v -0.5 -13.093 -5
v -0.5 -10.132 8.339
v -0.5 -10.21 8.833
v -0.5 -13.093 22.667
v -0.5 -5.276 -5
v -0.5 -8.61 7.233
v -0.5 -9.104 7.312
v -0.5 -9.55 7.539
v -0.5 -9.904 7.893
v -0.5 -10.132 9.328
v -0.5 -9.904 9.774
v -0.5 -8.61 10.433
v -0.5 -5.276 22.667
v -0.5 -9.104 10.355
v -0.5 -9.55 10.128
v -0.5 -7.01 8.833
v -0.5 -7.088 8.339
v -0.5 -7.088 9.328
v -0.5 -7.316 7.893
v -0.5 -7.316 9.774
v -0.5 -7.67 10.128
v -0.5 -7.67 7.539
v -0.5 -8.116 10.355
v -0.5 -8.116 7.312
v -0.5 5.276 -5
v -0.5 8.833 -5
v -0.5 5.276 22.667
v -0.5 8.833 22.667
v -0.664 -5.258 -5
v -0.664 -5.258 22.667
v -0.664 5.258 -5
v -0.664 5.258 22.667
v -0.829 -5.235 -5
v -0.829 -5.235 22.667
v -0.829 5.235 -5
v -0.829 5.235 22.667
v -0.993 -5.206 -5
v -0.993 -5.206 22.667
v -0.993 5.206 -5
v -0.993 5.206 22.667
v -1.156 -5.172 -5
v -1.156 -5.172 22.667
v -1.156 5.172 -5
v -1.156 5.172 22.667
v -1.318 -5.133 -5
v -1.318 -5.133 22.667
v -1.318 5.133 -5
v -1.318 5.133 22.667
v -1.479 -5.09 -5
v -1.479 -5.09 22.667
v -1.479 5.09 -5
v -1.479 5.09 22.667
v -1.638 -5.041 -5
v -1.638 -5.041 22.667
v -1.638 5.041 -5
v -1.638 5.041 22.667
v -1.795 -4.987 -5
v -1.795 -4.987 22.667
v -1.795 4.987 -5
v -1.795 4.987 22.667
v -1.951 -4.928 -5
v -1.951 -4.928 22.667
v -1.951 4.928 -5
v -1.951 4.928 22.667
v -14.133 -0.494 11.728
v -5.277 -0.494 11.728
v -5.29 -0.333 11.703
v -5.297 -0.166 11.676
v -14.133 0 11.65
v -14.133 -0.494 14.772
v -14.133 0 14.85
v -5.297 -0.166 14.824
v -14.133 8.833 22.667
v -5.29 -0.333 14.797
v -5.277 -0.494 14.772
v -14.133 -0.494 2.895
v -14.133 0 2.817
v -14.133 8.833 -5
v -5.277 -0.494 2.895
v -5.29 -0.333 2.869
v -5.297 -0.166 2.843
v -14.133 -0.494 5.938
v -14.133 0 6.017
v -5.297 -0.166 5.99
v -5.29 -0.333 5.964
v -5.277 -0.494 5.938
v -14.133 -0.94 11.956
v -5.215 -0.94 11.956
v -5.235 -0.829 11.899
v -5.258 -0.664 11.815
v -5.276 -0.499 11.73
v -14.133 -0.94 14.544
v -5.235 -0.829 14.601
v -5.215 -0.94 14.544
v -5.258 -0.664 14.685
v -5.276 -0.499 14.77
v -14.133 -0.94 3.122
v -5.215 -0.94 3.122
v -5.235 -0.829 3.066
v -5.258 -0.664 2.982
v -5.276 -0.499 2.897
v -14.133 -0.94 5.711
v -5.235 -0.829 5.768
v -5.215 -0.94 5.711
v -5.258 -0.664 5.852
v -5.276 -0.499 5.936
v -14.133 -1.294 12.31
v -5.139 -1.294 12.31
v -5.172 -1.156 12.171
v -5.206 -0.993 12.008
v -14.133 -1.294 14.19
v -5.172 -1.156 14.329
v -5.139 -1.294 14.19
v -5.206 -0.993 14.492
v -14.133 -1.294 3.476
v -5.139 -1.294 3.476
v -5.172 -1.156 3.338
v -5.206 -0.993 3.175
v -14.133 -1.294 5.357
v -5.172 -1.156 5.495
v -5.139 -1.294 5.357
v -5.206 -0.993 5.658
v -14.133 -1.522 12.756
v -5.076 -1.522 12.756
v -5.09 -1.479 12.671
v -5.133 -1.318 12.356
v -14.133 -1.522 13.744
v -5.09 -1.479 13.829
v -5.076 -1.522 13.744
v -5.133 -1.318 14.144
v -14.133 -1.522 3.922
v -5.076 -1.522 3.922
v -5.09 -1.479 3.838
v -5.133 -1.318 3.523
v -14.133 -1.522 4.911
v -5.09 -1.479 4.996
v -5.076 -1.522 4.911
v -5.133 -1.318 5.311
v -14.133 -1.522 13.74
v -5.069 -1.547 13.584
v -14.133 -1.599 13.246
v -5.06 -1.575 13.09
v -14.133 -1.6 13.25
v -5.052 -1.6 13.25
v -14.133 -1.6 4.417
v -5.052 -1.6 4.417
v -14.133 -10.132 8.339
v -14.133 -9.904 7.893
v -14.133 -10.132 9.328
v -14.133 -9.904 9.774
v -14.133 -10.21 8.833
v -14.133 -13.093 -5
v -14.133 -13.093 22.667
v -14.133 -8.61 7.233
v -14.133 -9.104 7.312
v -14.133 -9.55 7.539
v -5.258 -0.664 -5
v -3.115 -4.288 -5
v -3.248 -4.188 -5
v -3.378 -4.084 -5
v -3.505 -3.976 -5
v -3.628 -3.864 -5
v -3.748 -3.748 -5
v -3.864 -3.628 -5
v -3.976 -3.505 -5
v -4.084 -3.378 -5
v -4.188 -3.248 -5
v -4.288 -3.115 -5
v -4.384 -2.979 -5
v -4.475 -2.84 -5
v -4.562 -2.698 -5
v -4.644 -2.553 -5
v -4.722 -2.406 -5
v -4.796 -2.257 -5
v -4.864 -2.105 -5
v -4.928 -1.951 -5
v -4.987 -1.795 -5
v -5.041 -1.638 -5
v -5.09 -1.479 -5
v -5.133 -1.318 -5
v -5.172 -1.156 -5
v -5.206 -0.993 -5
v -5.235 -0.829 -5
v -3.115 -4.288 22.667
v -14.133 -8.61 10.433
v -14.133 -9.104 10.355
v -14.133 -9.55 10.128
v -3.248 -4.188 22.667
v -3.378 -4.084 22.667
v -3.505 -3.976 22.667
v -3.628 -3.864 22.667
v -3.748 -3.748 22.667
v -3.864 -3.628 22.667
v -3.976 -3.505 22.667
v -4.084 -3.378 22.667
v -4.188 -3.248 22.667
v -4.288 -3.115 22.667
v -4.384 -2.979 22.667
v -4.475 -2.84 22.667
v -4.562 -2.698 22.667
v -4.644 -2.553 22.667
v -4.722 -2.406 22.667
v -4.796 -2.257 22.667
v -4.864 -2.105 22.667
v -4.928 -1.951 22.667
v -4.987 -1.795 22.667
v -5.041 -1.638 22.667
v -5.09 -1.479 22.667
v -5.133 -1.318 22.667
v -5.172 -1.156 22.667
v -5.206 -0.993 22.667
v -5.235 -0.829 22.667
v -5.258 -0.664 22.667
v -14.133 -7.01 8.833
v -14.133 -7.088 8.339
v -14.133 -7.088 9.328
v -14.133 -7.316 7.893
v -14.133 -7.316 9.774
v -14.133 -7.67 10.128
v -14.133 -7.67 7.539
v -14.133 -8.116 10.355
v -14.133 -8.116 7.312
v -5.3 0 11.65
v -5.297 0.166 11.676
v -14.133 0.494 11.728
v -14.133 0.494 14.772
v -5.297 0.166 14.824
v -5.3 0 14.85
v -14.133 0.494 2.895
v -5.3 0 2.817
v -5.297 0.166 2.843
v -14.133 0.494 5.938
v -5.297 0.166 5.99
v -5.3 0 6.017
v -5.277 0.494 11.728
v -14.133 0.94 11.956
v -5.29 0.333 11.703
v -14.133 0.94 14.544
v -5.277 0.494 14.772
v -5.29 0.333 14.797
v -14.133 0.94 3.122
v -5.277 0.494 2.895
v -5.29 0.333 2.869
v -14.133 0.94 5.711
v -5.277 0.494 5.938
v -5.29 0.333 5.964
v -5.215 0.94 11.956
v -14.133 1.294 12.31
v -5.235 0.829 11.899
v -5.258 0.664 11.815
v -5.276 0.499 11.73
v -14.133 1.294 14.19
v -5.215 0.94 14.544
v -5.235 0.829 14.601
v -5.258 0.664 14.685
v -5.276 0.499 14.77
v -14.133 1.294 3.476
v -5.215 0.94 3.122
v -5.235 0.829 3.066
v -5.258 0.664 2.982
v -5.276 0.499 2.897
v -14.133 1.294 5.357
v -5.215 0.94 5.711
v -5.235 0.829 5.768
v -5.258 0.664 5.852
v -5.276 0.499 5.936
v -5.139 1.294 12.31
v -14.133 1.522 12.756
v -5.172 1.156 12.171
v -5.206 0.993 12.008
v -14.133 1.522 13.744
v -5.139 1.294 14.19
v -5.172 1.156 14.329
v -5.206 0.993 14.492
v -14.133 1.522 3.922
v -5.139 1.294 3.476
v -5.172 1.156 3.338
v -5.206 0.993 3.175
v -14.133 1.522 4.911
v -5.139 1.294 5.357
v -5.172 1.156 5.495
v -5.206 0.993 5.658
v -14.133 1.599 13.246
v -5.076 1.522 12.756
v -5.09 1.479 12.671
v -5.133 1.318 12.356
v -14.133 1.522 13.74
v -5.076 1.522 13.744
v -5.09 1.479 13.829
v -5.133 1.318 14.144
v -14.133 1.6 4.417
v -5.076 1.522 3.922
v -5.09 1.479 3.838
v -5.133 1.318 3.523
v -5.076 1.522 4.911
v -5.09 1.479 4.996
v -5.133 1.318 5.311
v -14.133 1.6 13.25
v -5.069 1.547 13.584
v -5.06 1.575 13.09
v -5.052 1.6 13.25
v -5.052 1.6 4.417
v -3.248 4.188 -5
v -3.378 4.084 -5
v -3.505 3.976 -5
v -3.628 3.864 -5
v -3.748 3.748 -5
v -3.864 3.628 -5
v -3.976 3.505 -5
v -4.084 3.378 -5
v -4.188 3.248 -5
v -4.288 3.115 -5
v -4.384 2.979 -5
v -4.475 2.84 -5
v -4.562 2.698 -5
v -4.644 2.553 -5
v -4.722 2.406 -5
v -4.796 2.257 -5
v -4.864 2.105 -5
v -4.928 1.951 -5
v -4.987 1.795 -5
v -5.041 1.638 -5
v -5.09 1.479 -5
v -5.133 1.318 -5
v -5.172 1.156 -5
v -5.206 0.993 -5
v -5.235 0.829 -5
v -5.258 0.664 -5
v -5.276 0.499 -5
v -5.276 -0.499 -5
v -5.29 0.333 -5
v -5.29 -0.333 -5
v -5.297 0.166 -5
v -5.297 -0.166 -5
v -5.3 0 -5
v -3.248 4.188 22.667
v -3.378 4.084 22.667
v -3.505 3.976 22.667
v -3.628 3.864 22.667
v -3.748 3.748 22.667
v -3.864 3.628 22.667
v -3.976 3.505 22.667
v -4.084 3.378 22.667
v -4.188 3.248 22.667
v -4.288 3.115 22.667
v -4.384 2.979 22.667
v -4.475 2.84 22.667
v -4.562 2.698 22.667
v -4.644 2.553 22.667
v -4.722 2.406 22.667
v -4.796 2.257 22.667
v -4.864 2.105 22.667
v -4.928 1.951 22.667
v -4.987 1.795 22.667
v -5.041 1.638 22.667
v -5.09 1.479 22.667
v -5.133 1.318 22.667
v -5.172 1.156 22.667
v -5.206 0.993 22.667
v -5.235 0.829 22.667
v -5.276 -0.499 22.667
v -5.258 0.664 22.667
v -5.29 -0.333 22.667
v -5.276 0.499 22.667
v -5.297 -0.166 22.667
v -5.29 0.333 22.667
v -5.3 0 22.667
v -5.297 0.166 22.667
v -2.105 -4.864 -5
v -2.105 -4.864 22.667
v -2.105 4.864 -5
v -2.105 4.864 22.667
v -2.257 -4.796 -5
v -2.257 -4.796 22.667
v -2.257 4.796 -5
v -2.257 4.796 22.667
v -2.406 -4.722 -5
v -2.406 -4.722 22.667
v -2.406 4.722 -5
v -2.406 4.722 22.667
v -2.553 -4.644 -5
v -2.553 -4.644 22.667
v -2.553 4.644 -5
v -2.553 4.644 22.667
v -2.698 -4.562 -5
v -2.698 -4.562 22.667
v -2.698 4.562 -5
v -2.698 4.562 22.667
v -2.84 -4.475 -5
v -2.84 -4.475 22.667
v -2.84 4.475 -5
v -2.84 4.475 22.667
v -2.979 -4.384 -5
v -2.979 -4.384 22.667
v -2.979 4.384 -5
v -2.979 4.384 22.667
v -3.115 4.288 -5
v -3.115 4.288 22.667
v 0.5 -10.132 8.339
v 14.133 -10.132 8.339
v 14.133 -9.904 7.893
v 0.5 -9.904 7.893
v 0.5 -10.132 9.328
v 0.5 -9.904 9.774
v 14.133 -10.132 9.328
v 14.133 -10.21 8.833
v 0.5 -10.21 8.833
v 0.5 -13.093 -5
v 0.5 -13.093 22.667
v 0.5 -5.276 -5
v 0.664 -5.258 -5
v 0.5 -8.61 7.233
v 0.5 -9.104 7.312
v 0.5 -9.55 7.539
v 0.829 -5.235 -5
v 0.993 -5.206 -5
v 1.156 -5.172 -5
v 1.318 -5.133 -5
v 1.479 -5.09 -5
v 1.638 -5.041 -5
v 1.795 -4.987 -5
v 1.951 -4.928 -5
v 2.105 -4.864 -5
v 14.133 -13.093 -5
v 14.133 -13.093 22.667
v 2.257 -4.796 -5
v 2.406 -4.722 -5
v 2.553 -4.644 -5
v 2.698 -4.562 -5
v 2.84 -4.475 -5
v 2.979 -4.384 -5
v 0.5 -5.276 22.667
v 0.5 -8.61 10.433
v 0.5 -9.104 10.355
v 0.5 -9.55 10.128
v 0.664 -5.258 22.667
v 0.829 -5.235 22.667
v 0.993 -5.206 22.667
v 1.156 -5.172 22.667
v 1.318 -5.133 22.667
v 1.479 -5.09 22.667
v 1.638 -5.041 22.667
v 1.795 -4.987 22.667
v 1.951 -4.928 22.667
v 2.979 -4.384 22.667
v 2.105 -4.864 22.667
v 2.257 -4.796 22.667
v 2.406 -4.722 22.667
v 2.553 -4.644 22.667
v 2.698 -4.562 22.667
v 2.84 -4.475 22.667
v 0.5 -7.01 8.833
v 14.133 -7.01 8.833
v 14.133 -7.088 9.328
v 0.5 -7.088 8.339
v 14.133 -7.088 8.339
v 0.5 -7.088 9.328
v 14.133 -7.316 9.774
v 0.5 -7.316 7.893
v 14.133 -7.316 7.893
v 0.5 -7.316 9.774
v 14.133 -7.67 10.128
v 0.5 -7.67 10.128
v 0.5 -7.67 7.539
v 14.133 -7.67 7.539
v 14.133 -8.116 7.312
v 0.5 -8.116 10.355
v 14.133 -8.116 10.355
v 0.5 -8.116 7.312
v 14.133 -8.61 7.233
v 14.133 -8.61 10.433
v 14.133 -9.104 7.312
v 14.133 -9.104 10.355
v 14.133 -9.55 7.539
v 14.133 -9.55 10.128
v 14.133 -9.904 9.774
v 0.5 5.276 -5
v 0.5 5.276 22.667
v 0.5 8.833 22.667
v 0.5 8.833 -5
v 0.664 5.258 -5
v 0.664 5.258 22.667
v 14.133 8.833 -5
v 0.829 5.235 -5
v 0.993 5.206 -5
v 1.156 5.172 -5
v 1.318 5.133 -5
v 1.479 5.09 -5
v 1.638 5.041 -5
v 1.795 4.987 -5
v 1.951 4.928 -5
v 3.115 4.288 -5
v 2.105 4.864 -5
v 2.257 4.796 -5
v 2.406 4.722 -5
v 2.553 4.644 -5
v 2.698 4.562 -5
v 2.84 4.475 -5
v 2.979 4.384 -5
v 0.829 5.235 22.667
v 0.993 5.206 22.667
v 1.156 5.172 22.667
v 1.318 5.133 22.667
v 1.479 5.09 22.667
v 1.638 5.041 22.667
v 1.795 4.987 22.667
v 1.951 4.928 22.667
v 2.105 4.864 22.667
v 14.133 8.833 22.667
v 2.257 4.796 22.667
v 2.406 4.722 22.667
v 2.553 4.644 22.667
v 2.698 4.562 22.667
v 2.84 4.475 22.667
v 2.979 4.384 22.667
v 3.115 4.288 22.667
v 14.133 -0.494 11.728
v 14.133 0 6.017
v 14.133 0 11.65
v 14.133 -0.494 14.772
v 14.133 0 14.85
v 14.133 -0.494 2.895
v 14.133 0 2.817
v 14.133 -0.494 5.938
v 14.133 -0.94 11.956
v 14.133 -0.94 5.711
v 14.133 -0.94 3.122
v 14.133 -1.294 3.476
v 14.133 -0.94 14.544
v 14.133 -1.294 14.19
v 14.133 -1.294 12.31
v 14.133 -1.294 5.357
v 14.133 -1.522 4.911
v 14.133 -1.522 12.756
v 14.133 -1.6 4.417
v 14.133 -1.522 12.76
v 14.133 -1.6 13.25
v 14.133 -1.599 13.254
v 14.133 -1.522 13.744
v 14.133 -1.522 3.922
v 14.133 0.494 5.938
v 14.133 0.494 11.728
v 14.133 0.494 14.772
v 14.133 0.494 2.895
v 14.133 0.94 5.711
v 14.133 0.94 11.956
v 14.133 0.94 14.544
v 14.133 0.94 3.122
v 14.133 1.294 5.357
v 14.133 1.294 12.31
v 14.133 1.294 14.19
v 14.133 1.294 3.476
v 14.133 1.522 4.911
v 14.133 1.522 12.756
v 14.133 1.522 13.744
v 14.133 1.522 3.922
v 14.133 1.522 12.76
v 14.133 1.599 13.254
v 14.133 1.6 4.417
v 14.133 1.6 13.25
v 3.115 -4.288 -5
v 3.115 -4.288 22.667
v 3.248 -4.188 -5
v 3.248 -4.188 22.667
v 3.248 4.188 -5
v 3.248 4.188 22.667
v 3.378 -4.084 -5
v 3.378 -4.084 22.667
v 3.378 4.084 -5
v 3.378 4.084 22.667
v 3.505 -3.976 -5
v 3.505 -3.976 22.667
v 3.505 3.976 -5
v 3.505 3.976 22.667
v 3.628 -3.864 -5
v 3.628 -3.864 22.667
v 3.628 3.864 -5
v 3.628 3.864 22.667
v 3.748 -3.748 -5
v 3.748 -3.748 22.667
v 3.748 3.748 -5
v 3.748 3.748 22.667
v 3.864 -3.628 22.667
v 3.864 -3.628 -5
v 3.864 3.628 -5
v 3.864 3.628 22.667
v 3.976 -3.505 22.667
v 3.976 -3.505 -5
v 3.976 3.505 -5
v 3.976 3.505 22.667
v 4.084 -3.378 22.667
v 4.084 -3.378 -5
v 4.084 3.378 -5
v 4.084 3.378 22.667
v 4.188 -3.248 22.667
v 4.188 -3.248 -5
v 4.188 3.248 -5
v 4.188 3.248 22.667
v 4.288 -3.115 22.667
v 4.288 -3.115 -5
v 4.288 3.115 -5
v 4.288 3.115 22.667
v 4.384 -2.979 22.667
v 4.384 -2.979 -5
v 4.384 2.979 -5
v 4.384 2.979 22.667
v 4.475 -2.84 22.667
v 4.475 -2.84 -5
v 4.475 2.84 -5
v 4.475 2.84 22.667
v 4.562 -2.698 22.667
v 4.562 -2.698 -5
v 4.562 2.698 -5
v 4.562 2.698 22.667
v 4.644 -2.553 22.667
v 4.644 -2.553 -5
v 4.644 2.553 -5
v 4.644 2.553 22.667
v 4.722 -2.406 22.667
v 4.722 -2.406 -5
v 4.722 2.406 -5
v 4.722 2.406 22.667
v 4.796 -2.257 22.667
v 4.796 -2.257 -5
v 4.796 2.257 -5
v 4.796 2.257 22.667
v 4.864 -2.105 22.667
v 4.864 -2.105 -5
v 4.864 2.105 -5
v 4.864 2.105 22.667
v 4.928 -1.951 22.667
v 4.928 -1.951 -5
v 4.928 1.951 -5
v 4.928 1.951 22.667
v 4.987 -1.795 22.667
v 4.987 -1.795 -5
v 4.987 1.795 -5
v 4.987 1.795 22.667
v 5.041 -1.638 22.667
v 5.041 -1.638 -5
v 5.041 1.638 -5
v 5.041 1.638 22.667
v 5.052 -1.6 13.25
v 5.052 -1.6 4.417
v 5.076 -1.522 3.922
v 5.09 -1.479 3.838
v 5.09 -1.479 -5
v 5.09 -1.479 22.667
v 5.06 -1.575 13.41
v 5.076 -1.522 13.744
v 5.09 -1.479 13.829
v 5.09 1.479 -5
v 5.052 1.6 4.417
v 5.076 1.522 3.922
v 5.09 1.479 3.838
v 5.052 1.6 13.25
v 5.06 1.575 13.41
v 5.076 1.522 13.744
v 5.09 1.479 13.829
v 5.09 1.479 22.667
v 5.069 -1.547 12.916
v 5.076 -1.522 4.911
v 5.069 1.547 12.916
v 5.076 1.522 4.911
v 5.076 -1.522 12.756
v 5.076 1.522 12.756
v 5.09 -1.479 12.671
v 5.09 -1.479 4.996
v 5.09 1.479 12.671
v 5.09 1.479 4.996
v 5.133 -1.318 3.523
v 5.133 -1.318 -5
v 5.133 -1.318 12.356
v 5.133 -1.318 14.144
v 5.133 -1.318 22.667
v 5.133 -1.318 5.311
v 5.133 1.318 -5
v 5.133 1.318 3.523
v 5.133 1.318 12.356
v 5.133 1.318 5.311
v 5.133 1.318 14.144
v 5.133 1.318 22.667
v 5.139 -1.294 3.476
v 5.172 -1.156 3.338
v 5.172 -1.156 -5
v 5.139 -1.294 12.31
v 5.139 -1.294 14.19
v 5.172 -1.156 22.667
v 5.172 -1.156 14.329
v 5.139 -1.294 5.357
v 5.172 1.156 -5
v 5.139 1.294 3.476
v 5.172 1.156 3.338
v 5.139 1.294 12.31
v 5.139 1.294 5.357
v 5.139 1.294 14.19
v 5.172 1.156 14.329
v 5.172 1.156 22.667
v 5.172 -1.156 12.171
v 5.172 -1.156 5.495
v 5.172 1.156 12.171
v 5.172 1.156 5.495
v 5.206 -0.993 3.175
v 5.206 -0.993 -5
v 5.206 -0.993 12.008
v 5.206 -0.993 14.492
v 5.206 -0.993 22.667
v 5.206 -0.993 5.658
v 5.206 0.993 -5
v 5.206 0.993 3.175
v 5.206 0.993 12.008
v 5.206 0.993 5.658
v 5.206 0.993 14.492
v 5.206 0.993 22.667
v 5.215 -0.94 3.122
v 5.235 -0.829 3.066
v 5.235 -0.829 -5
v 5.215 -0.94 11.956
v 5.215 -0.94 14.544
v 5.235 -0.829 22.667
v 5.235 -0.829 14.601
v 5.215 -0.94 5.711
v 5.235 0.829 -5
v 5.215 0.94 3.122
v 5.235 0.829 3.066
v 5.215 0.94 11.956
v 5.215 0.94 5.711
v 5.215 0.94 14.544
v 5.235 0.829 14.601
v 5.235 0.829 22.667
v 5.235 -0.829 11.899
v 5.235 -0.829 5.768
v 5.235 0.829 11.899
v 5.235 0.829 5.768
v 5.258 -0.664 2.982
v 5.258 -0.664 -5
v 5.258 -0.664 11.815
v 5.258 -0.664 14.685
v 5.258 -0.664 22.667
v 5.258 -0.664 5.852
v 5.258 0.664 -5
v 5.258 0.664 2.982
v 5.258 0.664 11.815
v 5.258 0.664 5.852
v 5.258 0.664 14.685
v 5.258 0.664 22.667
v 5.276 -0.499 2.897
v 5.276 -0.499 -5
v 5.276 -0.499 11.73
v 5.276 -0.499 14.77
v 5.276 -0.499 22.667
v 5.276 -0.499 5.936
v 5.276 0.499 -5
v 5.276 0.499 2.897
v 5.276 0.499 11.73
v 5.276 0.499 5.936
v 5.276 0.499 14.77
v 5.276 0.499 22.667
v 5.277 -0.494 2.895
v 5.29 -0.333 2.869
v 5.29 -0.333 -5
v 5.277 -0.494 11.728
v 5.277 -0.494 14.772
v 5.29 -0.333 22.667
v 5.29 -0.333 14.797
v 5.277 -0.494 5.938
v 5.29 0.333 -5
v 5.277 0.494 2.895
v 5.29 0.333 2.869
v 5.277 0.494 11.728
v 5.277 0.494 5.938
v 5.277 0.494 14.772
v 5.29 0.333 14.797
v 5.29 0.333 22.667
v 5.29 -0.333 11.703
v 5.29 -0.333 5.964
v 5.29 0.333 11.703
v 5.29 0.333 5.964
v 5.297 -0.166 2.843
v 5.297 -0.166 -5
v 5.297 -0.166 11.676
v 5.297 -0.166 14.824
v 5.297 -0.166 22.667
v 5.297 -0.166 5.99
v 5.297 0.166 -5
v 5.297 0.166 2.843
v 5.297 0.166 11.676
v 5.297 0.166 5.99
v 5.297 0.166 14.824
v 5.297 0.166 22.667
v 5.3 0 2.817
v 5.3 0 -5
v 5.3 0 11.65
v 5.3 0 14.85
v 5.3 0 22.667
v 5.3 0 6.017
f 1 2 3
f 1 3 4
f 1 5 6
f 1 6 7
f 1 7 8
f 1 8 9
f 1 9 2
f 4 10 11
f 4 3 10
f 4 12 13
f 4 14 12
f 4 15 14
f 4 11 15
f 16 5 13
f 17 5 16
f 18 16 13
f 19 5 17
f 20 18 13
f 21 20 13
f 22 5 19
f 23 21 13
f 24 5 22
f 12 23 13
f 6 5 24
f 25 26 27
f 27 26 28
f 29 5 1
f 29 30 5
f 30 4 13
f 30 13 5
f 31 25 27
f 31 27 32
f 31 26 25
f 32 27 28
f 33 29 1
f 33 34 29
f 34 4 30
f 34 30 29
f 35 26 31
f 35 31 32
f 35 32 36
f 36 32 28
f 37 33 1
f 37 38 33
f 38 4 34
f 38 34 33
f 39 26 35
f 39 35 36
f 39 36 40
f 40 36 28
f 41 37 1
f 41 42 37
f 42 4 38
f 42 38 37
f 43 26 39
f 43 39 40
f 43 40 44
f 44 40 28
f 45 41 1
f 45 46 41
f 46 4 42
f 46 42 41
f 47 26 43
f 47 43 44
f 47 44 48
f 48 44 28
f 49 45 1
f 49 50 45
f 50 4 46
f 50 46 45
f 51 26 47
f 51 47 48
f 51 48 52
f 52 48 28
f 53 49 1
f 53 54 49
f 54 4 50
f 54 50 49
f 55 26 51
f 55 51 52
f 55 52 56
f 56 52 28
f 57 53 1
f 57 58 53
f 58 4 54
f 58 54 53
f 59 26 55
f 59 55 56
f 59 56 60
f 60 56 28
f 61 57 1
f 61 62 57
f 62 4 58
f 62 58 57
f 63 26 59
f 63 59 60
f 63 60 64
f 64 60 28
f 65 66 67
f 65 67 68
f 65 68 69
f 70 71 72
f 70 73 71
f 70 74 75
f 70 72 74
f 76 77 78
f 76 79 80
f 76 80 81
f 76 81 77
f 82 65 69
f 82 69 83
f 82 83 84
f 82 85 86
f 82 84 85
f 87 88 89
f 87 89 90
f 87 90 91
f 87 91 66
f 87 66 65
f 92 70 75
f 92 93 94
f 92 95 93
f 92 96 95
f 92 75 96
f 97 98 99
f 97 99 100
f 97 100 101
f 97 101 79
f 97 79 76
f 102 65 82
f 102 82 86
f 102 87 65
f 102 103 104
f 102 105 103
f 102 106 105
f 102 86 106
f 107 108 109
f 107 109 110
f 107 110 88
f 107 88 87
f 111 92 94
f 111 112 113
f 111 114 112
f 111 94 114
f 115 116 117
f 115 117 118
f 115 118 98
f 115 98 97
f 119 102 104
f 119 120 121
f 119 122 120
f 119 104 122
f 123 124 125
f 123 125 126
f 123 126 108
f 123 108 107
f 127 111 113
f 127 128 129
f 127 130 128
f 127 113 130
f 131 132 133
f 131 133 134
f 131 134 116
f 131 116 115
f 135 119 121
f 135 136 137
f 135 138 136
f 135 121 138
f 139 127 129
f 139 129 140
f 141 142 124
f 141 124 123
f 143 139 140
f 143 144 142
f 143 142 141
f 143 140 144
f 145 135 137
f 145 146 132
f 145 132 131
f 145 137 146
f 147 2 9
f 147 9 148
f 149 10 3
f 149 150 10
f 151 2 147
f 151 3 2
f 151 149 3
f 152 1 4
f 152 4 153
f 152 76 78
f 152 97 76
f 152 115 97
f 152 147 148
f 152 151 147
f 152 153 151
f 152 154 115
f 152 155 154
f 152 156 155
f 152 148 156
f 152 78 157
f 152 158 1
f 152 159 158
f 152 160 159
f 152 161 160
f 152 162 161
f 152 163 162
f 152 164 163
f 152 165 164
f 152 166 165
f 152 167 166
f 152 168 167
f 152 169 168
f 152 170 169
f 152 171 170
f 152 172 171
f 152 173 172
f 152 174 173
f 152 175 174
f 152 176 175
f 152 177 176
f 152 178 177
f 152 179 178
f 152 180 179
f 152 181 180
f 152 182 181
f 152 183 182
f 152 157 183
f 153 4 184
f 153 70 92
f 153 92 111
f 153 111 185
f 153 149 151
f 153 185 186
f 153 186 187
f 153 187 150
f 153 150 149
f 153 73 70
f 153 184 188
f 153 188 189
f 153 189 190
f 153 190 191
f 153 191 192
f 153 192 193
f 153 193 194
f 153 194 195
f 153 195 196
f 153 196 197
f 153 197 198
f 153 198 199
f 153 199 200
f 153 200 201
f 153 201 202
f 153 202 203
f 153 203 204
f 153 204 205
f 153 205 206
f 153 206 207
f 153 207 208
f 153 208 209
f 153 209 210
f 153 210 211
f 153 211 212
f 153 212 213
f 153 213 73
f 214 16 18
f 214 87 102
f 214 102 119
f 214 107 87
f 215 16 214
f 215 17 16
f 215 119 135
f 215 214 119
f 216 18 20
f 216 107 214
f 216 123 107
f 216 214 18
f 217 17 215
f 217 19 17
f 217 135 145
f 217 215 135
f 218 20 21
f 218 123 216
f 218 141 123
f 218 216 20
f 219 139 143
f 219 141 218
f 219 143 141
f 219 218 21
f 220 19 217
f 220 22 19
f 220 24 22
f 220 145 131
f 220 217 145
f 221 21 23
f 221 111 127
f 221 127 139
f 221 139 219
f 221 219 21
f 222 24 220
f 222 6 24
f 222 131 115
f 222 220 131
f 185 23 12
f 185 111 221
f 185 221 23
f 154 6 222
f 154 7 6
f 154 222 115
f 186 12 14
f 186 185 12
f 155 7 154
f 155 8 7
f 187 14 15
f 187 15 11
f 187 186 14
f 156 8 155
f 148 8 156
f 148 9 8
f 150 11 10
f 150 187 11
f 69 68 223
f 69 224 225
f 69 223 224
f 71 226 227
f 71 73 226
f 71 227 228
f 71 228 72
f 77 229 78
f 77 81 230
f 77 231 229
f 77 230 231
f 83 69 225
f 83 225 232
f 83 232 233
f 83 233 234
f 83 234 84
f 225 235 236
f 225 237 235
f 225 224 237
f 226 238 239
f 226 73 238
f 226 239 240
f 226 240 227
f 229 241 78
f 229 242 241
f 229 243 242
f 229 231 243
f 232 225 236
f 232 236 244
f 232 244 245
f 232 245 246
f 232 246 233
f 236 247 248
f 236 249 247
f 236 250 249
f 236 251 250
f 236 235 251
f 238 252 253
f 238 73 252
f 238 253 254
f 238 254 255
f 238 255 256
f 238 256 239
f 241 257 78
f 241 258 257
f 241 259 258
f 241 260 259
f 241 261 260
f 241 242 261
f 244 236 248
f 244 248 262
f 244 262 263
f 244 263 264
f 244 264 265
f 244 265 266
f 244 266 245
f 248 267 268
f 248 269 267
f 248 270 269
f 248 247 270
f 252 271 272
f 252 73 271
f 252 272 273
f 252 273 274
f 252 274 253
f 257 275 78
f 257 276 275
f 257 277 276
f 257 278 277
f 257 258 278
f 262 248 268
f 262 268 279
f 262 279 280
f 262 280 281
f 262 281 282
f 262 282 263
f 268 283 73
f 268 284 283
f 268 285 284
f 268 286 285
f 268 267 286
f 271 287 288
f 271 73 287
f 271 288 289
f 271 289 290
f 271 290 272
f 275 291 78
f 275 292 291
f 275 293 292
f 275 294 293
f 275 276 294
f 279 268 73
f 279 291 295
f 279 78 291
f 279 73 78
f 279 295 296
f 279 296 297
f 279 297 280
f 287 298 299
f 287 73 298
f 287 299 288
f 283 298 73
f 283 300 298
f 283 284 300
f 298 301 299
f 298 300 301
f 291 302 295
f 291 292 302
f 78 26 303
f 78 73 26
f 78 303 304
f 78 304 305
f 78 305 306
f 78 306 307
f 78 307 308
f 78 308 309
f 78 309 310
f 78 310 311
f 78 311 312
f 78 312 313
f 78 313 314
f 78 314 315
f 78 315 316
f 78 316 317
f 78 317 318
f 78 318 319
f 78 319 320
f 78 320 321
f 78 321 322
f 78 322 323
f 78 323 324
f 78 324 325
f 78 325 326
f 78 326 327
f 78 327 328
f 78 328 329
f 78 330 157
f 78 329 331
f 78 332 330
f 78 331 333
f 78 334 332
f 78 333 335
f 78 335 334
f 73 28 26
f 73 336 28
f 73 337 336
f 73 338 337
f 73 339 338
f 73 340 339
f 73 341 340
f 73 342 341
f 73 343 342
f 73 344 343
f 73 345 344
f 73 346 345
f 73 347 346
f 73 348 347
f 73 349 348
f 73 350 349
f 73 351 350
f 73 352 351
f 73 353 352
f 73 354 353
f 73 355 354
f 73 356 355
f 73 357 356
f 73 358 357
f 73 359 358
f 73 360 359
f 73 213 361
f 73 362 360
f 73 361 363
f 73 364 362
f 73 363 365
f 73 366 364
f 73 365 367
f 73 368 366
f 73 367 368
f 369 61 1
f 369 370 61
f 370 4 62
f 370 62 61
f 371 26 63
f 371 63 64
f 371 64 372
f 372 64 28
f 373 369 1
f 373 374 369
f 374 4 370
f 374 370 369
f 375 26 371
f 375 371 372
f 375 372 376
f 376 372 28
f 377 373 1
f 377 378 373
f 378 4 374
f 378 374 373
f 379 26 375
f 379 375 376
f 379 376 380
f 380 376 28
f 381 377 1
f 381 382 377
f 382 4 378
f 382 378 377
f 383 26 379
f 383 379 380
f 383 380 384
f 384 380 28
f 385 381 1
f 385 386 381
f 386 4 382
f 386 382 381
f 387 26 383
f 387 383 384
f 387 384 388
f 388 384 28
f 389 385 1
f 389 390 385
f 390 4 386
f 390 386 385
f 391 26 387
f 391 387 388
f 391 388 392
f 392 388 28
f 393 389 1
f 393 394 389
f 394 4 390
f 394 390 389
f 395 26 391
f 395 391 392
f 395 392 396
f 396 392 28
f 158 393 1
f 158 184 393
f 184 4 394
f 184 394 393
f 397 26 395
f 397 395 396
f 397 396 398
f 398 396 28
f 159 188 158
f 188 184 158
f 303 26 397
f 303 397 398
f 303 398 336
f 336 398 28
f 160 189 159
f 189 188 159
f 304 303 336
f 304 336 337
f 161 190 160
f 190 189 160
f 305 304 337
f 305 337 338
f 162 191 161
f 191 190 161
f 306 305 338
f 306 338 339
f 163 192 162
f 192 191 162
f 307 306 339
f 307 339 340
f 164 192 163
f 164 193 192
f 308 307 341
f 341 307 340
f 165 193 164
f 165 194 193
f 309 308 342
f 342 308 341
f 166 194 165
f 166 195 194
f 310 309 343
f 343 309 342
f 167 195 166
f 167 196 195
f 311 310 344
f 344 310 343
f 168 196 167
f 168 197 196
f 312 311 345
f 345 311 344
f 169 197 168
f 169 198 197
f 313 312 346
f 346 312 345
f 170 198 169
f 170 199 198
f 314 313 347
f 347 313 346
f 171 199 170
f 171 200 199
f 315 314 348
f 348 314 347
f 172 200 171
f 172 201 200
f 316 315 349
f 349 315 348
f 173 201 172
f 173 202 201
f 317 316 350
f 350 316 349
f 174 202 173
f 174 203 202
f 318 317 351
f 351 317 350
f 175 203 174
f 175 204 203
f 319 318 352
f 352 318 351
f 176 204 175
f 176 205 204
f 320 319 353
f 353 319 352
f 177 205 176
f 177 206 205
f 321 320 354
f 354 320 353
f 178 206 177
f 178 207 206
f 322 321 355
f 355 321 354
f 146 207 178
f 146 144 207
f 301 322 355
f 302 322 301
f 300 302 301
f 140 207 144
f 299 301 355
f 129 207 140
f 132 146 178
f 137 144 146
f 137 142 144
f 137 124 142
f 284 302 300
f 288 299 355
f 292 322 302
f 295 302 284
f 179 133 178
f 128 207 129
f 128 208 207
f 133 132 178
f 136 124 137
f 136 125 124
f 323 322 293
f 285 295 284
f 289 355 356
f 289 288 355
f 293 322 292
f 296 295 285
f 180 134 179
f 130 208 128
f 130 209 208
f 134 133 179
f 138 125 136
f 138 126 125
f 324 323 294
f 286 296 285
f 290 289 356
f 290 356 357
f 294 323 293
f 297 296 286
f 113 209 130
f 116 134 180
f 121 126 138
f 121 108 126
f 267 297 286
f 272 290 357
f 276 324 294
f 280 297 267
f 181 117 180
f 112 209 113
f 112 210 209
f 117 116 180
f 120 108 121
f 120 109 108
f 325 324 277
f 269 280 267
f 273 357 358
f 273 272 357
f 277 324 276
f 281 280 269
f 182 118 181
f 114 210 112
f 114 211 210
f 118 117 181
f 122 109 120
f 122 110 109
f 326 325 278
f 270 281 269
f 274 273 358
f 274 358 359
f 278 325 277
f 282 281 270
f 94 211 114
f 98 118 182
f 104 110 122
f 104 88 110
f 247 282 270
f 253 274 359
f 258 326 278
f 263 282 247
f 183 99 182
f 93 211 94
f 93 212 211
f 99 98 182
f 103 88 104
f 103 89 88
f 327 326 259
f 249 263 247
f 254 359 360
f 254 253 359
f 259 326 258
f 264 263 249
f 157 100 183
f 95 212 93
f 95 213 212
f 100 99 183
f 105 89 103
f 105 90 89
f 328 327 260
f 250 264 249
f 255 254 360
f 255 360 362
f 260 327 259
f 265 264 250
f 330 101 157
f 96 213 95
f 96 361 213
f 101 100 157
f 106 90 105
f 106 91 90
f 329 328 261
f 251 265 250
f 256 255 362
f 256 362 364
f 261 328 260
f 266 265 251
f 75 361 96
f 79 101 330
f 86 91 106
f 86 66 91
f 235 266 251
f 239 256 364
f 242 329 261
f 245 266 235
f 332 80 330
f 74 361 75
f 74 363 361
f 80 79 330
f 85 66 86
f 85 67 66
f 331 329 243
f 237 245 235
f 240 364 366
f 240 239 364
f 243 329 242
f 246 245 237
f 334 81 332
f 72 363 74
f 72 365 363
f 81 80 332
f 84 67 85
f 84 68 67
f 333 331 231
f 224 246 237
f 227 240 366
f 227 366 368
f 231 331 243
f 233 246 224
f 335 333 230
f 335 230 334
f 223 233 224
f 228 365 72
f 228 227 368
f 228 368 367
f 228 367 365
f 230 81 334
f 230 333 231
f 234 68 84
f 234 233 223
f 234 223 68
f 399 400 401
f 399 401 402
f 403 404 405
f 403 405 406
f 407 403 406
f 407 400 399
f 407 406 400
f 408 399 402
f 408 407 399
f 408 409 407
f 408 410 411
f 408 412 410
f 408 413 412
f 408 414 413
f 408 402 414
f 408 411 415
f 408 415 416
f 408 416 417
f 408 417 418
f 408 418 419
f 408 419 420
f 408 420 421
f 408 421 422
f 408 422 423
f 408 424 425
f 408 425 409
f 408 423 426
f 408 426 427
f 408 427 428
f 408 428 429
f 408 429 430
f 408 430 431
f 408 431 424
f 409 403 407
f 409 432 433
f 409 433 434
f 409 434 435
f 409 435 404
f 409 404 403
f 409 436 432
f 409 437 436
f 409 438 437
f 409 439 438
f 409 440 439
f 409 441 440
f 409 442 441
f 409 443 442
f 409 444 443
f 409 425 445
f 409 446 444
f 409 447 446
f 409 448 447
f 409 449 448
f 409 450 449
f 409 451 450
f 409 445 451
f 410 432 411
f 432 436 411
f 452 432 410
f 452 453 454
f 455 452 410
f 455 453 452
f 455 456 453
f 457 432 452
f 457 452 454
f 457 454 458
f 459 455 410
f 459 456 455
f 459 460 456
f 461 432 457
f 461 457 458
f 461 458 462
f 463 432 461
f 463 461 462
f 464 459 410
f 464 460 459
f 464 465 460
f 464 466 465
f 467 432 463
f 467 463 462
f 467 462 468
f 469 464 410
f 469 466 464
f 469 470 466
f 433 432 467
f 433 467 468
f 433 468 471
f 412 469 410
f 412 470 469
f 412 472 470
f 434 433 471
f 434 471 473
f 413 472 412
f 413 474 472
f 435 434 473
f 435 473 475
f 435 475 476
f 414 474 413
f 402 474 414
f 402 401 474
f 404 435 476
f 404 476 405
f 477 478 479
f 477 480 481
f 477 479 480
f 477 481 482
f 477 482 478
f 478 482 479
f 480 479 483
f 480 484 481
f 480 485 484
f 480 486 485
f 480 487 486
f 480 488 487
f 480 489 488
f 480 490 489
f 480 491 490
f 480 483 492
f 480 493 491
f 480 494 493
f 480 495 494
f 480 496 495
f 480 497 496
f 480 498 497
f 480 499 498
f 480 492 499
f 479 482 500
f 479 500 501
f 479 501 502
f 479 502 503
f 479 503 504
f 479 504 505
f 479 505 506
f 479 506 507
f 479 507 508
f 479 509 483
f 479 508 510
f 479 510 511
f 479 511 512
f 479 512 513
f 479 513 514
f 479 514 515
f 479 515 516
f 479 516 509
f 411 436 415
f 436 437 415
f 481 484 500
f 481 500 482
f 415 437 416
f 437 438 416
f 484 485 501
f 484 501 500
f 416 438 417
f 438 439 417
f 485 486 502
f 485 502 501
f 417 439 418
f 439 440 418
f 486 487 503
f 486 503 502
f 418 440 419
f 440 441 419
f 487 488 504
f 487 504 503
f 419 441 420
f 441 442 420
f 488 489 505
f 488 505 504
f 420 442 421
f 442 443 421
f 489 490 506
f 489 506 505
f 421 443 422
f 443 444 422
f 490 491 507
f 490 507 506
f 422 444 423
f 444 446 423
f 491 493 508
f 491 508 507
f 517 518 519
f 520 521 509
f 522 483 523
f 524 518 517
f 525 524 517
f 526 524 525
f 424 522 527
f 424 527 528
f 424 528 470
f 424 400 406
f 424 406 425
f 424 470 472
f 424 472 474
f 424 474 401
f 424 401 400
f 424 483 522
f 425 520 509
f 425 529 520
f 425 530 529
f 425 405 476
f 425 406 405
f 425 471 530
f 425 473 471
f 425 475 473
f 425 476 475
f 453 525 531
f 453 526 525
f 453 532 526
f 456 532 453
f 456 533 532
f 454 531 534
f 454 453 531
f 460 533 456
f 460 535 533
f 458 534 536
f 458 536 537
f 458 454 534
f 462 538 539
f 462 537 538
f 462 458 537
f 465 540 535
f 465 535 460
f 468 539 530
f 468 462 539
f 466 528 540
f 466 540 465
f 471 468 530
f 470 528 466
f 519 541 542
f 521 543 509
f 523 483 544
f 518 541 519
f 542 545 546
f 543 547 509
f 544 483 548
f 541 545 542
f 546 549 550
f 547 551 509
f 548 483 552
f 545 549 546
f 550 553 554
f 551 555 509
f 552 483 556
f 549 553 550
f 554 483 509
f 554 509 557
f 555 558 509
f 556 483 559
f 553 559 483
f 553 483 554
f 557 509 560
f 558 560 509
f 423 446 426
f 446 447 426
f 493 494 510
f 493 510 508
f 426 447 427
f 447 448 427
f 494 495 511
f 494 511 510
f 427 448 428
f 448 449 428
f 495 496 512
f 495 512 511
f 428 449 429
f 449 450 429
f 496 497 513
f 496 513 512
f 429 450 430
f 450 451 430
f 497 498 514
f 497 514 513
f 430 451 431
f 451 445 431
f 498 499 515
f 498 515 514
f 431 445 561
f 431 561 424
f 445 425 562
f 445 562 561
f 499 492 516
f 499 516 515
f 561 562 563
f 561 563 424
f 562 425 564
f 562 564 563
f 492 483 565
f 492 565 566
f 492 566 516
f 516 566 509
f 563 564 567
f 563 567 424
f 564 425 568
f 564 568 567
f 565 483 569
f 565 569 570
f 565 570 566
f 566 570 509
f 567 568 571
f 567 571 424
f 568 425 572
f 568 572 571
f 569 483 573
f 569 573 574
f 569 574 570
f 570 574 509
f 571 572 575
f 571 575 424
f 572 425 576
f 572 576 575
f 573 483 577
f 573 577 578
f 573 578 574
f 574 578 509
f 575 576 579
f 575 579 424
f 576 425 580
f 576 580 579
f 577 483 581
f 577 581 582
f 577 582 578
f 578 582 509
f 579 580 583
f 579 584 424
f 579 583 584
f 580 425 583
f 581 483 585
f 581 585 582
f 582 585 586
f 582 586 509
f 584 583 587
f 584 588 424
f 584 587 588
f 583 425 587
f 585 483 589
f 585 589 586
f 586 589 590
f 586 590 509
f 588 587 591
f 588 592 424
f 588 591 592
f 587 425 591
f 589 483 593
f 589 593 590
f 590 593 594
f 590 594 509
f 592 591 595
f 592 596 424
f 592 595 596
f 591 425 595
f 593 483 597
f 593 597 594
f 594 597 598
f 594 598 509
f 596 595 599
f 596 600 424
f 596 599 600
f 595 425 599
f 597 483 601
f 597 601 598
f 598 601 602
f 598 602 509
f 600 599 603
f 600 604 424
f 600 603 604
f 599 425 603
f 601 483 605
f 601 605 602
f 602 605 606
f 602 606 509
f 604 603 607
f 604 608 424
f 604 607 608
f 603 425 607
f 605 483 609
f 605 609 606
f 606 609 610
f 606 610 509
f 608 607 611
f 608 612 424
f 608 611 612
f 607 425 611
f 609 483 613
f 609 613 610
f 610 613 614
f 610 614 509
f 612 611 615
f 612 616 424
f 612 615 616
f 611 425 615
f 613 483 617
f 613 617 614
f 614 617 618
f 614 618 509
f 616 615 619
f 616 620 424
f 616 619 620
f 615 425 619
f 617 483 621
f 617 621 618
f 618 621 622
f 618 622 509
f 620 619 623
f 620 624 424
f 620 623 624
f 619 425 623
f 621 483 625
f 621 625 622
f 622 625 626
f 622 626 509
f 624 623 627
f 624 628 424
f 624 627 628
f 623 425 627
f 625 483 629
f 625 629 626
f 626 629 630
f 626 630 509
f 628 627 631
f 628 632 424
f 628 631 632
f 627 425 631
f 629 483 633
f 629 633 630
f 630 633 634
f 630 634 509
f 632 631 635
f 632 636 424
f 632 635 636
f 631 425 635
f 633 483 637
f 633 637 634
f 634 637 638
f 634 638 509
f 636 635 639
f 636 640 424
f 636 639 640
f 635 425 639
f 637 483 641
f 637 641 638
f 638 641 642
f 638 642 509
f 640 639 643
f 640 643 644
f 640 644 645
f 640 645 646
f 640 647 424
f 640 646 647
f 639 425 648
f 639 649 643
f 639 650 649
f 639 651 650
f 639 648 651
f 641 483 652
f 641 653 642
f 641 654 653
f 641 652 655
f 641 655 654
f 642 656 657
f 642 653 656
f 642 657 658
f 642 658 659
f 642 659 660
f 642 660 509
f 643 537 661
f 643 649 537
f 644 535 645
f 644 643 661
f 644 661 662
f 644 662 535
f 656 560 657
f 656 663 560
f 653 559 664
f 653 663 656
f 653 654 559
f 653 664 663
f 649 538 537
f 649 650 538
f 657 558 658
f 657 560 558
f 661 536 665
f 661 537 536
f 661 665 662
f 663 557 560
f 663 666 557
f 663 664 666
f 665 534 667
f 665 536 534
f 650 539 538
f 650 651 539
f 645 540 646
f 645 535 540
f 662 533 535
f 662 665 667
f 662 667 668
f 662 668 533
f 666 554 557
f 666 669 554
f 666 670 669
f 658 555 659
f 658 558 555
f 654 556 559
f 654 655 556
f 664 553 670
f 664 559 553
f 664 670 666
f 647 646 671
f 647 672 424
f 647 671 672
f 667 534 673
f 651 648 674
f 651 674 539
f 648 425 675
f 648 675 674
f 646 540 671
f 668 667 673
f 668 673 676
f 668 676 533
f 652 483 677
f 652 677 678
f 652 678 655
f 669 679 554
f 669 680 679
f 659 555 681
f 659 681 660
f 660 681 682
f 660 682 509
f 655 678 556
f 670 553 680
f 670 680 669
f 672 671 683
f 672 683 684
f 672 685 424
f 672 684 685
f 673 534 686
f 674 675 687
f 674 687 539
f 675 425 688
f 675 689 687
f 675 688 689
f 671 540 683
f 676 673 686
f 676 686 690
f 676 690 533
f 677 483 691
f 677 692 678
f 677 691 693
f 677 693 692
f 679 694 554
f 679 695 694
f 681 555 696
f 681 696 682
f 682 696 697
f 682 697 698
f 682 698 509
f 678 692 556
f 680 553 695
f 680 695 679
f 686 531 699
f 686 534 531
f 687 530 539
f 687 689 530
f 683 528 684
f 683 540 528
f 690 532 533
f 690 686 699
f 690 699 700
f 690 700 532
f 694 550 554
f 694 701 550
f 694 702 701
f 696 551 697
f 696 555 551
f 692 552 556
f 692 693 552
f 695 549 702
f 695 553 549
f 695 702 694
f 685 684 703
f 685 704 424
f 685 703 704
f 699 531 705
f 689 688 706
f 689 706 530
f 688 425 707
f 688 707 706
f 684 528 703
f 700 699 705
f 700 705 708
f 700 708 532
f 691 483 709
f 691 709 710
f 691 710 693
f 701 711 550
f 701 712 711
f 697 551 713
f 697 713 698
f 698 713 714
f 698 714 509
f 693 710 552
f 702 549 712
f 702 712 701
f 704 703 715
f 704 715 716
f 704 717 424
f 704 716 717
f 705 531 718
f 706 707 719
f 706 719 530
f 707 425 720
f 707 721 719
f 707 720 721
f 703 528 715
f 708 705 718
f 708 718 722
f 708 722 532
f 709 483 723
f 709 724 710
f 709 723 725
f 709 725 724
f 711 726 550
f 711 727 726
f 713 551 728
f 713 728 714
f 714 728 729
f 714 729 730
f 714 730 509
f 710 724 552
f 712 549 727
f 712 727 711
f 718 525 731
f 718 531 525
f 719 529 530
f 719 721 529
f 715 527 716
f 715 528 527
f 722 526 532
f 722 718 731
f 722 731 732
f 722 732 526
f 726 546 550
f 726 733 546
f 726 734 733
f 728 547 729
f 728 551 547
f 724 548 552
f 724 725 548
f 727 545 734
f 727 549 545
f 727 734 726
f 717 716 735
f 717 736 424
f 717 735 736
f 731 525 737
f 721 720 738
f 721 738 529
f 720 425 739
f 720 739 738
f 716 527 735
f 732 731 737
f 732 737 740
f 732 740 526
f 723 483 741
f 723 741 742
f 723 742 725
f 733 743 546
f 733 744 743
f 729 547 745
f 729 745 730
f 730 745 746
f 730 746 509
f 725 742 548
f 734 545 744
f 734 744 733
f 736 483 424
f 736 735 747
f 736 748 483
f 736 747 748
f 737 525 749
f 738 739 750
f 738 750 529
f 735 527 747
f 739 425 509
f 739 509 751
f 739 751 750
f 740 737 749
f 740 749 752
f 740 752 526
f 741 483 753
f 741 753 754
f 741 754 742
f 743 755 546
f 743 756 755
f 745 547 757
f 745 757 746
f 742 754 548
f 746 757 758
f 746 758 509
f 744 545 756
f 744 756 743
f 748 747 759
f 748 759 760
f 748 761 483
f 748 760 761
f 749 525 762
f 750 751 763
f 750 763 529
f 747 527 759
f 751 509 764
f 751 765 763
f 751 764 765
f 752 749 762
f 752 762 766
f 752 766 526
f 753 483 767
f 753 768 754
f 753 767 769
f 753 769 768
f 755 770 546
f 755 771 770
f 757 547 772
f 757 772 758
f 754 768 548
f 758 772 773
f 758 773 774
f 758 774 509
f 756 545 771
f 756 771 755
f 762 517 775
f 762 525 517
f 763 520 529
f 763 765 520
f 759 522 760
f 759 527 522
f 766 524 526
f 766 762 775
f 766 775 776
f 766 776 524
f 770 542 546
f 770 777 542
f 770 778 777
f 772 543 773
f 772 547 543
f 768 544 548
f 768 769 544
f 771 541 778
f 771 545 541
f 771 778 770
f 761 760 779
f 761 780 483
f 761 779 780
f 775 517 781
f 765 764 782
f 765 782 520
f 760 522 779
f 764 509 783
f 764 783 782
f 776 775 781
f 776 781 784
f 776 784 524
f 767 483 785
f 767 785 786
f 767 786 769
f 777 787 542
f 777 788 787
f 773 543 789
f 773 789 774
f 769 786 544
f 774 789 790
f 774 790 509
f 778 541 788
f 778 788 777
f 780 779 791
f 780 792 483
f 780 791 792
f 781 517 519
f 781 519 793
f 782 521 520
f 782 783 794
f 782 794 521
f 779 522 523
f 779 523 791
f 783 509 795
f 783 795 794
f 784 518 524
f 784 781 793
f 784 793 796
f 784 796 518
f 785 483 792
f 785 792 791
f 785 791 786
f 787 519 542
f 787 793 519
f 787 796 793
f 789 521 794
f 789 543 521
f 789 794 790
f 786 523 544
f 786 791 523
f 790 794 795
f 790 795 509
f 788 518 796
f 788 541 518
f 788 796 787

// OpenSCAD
// file: ../../666_1014.scad
//improving rendering speed.
draft = true;   // sets rendering quality to draft.
$fs = draft ? 5 : 0.5;
$fa = 10;



module 666_1014(draft){

    
difference(){

    translate([-(width_666_1014/2),-(depth_666_1014 - tube_for_undercarriage_outer_diameter/2 - coupling_wall_thickness_undercarriage),0])
        cube([width_666_1014,depth_666_1014,height_666_1014]);

	//tube
    translate ([0,0,- global_clearance/2])
        cylinder(h = height_666_1014 + global_clearance,r = tube_for_undercarriage_outer_diameter/2, $fn = draft ? 100 : 200);

    //bevelled edge
    translate([width_666_1014/2+sqrt(2)*coupling_wall_thickness_undercarriage,0,- global_clearance/2])
        rotate([0,0,45])
           cube([width_666_1014,width_666_1014,height_666_1014 + global_clearance]);

mirror([1,0,0])
    translate([width_666_1014/2+sqrt(2)*coupling_wall_thickness_undercarriage,0,- global_clearance/2])
        rotate([0,0,45])
            cube([width_666_1014,width_666_1014,height_666_1014 + global_clearance]);

    translate([-(width_666_1014/2) - global_clearance/2,- depth_666_1014 + height_666_1014/2-sqrt(2)*coupling_wall_thickness_undercarriage,height_666_1014/2])
        rotate([-135,0,0])
            cube([width_666_1014 + global_clearance, height_666_1014,height_666_1014]);
   
   translate([-(width_666_1014/2) - global_clearance/2, - depth_666_1014 + height_666_1014/2-sqrt(2)*coupling_wall_thickness_undercarriage,height_666_1014/2])  
        rotate([45,0,0])
            cube([width_666_1014 + global_clearance,height_666_1014,height_666_1014]);  


    // middle cut
    translate ([-0.25,- depth_666_1014,- global_clearance/2])
        cube ([0.5,depth_666_1014*2,height_666_1014 + global_clearance]);

    //screw
    translate([-width_666_1014/2 - global_clearance/2,-(thickness_between_tubes_undercarriage + tube_for_undercarriage_outer_diameter/2 + M4_screw_diameter/2), height_666_1014/2])
        rotate([0,90,0])
            cylinder(h = width_666_1014 + global_clearance,r = M4_screw_diameter/2, $fn = draft ? 10 : 20);

    translate([-width_666_1014/2,0,height_666_1014/4])
        rotate ([0,90,0])
            cylinder(h = width_666_1014, r = M3_screw_diameter/2, $fn = draft ? 10 :20 );

	translate([-width_666_1014/2,0,height_666_1014 - height_666_1014/4])
        rotate ([0,90,0])
            cylinder(h = width_666_1014, r = M3_screw_diameter/2, $fn = draft ? 10 :20 );


	//nut
	translate([-width_666_1014/2 - global_clearance, 0, height_666_1014/4])
	   rotate([0,90,0])
	      cylinder (h = M3_nut_height + global_clearance, r = M3_nut_diameter/2, $fn = 6);
    
    translate([width_666_1014/2 - M3_nut_height, 0, height_666_1014/4])
	   rotate([0,90,0])
	       cylinder (h = M3_nut_height + global_clearance, r = M3_nut_diameter/2, $fn = 6);

	translate([-width_666_1014/2 - global_clearance, 0, height_666_1014 - height_666_1014/4])
	   rotate([0,90,0])
	      cylinder (h = M3_nut_height + global_clearance, r = M3_nut_diameter/2, $fn = 6);
    
    translate([width_666_1014/2 - M3_nut_height, 0, height_666_1014 - height_666_1014/4])
	   rotate([0,90,0])
	       cylinder (h = M3_nut_height + global_clearance, r = M3_nut_diameter/2, $fn = 6);

	translate([width_666_1014/2 - M4_nut_height,-(thickness_between_tubes_undercarriage + tube_for_undercarriage_outer_diameter/2 + M4_screw_diameter/2), height_666_1014/2])
	   rotate([0,90,0])
	     cylinder (h = M4_nut_height + global_clearance, r = M4_nut_diameter/2, $fn = 6);

    }
}


module 666_1014_drillhelper(draft){

    
difference(){

    translate([-(width_666_1014_drillhelper/2),-(depth_666_1014 - tube_for_undercarriage_outer_diameter/2 - coupling_wall_thickness_undercarriage),-5])
       		cube([width_666_1014_drillhelper,depth_666_1014,height_666_1014 + 10]);

    //tube
    translate ([0,0,- global_clearance/2 - 5])
       		cylinder(h = height_666_1014 + global_clearance + 10,r = tube_for_undercarriage_outer_diameter/2, $fn = draft ? 100 : 200);


    // middle cut
    translate ([-global_clearance,- depth_666_1014,- global_clearance/2 - 5])
        	cube ([2* global_clearance, depth_666_1014*2,height_666_1014 + global_clearance + 10]);

    //screw
    translate([-width_666_1014_drillhelper/2 - global_clearance/2,-(thickness_between_tubes_undercarriage + tube_for_undercarriage_outer_diameter/2 + M4_screw_diameter/2), height_666_1014/2])
        rotate([0,90,0])
            cylinder(h = width_666_1014_drillhelper + global_clearance,r = M3_screw_diameter/2, $fn = draft ? 10 : 20);

    translate([-width_666_1014_drillhelper/2 - global_clearance/2,0,height_666_1014/4])
        rotate ([0,90,0])
            cylinder(h = width_666_1014_drillhelper + global_clearance, r = M3_screw_diameter/2, $fn = draft ? 10 :20 );

	translate([-width_666_1014_drillhelper/2 - global_clearance/2,0,height_666_1014 - height_666_1014/4])
        rotate ([0,90,0])
            cylinder(h = width_666_1014_drillhelper+global_clearance, r = M3_screw_diameter/2, $fn = draft ? 10 :20 );

    }
}


module 666_1014_A(draft){

    difference(){
        666_1014(draft);

        translate ([0,- depth_666_1014,- global_clearance/2])
            cube ([width_666_1014,depth_666_1014*2,height_666_1014 + global_clearance]);
    }
}


module 666_1014_B(draft){


    difference(){
        666_1014(draft);

        translate ([-width_666_1014, -depth_666_1014, -global_clearance/2])
           cube([width_666_1014, depth_666_1014*2, height_666_1014 + global_clearance]);
    }
}



		//666_1014(draft);

//translate([0,30,0])
		666_1014_drillhelper(draft);

include <../parameters.scad>
// main file
include <../../../parameters.scad>

use <../../666_1014.scad>
draft = false;

666_1014_drillhelper(draft);
